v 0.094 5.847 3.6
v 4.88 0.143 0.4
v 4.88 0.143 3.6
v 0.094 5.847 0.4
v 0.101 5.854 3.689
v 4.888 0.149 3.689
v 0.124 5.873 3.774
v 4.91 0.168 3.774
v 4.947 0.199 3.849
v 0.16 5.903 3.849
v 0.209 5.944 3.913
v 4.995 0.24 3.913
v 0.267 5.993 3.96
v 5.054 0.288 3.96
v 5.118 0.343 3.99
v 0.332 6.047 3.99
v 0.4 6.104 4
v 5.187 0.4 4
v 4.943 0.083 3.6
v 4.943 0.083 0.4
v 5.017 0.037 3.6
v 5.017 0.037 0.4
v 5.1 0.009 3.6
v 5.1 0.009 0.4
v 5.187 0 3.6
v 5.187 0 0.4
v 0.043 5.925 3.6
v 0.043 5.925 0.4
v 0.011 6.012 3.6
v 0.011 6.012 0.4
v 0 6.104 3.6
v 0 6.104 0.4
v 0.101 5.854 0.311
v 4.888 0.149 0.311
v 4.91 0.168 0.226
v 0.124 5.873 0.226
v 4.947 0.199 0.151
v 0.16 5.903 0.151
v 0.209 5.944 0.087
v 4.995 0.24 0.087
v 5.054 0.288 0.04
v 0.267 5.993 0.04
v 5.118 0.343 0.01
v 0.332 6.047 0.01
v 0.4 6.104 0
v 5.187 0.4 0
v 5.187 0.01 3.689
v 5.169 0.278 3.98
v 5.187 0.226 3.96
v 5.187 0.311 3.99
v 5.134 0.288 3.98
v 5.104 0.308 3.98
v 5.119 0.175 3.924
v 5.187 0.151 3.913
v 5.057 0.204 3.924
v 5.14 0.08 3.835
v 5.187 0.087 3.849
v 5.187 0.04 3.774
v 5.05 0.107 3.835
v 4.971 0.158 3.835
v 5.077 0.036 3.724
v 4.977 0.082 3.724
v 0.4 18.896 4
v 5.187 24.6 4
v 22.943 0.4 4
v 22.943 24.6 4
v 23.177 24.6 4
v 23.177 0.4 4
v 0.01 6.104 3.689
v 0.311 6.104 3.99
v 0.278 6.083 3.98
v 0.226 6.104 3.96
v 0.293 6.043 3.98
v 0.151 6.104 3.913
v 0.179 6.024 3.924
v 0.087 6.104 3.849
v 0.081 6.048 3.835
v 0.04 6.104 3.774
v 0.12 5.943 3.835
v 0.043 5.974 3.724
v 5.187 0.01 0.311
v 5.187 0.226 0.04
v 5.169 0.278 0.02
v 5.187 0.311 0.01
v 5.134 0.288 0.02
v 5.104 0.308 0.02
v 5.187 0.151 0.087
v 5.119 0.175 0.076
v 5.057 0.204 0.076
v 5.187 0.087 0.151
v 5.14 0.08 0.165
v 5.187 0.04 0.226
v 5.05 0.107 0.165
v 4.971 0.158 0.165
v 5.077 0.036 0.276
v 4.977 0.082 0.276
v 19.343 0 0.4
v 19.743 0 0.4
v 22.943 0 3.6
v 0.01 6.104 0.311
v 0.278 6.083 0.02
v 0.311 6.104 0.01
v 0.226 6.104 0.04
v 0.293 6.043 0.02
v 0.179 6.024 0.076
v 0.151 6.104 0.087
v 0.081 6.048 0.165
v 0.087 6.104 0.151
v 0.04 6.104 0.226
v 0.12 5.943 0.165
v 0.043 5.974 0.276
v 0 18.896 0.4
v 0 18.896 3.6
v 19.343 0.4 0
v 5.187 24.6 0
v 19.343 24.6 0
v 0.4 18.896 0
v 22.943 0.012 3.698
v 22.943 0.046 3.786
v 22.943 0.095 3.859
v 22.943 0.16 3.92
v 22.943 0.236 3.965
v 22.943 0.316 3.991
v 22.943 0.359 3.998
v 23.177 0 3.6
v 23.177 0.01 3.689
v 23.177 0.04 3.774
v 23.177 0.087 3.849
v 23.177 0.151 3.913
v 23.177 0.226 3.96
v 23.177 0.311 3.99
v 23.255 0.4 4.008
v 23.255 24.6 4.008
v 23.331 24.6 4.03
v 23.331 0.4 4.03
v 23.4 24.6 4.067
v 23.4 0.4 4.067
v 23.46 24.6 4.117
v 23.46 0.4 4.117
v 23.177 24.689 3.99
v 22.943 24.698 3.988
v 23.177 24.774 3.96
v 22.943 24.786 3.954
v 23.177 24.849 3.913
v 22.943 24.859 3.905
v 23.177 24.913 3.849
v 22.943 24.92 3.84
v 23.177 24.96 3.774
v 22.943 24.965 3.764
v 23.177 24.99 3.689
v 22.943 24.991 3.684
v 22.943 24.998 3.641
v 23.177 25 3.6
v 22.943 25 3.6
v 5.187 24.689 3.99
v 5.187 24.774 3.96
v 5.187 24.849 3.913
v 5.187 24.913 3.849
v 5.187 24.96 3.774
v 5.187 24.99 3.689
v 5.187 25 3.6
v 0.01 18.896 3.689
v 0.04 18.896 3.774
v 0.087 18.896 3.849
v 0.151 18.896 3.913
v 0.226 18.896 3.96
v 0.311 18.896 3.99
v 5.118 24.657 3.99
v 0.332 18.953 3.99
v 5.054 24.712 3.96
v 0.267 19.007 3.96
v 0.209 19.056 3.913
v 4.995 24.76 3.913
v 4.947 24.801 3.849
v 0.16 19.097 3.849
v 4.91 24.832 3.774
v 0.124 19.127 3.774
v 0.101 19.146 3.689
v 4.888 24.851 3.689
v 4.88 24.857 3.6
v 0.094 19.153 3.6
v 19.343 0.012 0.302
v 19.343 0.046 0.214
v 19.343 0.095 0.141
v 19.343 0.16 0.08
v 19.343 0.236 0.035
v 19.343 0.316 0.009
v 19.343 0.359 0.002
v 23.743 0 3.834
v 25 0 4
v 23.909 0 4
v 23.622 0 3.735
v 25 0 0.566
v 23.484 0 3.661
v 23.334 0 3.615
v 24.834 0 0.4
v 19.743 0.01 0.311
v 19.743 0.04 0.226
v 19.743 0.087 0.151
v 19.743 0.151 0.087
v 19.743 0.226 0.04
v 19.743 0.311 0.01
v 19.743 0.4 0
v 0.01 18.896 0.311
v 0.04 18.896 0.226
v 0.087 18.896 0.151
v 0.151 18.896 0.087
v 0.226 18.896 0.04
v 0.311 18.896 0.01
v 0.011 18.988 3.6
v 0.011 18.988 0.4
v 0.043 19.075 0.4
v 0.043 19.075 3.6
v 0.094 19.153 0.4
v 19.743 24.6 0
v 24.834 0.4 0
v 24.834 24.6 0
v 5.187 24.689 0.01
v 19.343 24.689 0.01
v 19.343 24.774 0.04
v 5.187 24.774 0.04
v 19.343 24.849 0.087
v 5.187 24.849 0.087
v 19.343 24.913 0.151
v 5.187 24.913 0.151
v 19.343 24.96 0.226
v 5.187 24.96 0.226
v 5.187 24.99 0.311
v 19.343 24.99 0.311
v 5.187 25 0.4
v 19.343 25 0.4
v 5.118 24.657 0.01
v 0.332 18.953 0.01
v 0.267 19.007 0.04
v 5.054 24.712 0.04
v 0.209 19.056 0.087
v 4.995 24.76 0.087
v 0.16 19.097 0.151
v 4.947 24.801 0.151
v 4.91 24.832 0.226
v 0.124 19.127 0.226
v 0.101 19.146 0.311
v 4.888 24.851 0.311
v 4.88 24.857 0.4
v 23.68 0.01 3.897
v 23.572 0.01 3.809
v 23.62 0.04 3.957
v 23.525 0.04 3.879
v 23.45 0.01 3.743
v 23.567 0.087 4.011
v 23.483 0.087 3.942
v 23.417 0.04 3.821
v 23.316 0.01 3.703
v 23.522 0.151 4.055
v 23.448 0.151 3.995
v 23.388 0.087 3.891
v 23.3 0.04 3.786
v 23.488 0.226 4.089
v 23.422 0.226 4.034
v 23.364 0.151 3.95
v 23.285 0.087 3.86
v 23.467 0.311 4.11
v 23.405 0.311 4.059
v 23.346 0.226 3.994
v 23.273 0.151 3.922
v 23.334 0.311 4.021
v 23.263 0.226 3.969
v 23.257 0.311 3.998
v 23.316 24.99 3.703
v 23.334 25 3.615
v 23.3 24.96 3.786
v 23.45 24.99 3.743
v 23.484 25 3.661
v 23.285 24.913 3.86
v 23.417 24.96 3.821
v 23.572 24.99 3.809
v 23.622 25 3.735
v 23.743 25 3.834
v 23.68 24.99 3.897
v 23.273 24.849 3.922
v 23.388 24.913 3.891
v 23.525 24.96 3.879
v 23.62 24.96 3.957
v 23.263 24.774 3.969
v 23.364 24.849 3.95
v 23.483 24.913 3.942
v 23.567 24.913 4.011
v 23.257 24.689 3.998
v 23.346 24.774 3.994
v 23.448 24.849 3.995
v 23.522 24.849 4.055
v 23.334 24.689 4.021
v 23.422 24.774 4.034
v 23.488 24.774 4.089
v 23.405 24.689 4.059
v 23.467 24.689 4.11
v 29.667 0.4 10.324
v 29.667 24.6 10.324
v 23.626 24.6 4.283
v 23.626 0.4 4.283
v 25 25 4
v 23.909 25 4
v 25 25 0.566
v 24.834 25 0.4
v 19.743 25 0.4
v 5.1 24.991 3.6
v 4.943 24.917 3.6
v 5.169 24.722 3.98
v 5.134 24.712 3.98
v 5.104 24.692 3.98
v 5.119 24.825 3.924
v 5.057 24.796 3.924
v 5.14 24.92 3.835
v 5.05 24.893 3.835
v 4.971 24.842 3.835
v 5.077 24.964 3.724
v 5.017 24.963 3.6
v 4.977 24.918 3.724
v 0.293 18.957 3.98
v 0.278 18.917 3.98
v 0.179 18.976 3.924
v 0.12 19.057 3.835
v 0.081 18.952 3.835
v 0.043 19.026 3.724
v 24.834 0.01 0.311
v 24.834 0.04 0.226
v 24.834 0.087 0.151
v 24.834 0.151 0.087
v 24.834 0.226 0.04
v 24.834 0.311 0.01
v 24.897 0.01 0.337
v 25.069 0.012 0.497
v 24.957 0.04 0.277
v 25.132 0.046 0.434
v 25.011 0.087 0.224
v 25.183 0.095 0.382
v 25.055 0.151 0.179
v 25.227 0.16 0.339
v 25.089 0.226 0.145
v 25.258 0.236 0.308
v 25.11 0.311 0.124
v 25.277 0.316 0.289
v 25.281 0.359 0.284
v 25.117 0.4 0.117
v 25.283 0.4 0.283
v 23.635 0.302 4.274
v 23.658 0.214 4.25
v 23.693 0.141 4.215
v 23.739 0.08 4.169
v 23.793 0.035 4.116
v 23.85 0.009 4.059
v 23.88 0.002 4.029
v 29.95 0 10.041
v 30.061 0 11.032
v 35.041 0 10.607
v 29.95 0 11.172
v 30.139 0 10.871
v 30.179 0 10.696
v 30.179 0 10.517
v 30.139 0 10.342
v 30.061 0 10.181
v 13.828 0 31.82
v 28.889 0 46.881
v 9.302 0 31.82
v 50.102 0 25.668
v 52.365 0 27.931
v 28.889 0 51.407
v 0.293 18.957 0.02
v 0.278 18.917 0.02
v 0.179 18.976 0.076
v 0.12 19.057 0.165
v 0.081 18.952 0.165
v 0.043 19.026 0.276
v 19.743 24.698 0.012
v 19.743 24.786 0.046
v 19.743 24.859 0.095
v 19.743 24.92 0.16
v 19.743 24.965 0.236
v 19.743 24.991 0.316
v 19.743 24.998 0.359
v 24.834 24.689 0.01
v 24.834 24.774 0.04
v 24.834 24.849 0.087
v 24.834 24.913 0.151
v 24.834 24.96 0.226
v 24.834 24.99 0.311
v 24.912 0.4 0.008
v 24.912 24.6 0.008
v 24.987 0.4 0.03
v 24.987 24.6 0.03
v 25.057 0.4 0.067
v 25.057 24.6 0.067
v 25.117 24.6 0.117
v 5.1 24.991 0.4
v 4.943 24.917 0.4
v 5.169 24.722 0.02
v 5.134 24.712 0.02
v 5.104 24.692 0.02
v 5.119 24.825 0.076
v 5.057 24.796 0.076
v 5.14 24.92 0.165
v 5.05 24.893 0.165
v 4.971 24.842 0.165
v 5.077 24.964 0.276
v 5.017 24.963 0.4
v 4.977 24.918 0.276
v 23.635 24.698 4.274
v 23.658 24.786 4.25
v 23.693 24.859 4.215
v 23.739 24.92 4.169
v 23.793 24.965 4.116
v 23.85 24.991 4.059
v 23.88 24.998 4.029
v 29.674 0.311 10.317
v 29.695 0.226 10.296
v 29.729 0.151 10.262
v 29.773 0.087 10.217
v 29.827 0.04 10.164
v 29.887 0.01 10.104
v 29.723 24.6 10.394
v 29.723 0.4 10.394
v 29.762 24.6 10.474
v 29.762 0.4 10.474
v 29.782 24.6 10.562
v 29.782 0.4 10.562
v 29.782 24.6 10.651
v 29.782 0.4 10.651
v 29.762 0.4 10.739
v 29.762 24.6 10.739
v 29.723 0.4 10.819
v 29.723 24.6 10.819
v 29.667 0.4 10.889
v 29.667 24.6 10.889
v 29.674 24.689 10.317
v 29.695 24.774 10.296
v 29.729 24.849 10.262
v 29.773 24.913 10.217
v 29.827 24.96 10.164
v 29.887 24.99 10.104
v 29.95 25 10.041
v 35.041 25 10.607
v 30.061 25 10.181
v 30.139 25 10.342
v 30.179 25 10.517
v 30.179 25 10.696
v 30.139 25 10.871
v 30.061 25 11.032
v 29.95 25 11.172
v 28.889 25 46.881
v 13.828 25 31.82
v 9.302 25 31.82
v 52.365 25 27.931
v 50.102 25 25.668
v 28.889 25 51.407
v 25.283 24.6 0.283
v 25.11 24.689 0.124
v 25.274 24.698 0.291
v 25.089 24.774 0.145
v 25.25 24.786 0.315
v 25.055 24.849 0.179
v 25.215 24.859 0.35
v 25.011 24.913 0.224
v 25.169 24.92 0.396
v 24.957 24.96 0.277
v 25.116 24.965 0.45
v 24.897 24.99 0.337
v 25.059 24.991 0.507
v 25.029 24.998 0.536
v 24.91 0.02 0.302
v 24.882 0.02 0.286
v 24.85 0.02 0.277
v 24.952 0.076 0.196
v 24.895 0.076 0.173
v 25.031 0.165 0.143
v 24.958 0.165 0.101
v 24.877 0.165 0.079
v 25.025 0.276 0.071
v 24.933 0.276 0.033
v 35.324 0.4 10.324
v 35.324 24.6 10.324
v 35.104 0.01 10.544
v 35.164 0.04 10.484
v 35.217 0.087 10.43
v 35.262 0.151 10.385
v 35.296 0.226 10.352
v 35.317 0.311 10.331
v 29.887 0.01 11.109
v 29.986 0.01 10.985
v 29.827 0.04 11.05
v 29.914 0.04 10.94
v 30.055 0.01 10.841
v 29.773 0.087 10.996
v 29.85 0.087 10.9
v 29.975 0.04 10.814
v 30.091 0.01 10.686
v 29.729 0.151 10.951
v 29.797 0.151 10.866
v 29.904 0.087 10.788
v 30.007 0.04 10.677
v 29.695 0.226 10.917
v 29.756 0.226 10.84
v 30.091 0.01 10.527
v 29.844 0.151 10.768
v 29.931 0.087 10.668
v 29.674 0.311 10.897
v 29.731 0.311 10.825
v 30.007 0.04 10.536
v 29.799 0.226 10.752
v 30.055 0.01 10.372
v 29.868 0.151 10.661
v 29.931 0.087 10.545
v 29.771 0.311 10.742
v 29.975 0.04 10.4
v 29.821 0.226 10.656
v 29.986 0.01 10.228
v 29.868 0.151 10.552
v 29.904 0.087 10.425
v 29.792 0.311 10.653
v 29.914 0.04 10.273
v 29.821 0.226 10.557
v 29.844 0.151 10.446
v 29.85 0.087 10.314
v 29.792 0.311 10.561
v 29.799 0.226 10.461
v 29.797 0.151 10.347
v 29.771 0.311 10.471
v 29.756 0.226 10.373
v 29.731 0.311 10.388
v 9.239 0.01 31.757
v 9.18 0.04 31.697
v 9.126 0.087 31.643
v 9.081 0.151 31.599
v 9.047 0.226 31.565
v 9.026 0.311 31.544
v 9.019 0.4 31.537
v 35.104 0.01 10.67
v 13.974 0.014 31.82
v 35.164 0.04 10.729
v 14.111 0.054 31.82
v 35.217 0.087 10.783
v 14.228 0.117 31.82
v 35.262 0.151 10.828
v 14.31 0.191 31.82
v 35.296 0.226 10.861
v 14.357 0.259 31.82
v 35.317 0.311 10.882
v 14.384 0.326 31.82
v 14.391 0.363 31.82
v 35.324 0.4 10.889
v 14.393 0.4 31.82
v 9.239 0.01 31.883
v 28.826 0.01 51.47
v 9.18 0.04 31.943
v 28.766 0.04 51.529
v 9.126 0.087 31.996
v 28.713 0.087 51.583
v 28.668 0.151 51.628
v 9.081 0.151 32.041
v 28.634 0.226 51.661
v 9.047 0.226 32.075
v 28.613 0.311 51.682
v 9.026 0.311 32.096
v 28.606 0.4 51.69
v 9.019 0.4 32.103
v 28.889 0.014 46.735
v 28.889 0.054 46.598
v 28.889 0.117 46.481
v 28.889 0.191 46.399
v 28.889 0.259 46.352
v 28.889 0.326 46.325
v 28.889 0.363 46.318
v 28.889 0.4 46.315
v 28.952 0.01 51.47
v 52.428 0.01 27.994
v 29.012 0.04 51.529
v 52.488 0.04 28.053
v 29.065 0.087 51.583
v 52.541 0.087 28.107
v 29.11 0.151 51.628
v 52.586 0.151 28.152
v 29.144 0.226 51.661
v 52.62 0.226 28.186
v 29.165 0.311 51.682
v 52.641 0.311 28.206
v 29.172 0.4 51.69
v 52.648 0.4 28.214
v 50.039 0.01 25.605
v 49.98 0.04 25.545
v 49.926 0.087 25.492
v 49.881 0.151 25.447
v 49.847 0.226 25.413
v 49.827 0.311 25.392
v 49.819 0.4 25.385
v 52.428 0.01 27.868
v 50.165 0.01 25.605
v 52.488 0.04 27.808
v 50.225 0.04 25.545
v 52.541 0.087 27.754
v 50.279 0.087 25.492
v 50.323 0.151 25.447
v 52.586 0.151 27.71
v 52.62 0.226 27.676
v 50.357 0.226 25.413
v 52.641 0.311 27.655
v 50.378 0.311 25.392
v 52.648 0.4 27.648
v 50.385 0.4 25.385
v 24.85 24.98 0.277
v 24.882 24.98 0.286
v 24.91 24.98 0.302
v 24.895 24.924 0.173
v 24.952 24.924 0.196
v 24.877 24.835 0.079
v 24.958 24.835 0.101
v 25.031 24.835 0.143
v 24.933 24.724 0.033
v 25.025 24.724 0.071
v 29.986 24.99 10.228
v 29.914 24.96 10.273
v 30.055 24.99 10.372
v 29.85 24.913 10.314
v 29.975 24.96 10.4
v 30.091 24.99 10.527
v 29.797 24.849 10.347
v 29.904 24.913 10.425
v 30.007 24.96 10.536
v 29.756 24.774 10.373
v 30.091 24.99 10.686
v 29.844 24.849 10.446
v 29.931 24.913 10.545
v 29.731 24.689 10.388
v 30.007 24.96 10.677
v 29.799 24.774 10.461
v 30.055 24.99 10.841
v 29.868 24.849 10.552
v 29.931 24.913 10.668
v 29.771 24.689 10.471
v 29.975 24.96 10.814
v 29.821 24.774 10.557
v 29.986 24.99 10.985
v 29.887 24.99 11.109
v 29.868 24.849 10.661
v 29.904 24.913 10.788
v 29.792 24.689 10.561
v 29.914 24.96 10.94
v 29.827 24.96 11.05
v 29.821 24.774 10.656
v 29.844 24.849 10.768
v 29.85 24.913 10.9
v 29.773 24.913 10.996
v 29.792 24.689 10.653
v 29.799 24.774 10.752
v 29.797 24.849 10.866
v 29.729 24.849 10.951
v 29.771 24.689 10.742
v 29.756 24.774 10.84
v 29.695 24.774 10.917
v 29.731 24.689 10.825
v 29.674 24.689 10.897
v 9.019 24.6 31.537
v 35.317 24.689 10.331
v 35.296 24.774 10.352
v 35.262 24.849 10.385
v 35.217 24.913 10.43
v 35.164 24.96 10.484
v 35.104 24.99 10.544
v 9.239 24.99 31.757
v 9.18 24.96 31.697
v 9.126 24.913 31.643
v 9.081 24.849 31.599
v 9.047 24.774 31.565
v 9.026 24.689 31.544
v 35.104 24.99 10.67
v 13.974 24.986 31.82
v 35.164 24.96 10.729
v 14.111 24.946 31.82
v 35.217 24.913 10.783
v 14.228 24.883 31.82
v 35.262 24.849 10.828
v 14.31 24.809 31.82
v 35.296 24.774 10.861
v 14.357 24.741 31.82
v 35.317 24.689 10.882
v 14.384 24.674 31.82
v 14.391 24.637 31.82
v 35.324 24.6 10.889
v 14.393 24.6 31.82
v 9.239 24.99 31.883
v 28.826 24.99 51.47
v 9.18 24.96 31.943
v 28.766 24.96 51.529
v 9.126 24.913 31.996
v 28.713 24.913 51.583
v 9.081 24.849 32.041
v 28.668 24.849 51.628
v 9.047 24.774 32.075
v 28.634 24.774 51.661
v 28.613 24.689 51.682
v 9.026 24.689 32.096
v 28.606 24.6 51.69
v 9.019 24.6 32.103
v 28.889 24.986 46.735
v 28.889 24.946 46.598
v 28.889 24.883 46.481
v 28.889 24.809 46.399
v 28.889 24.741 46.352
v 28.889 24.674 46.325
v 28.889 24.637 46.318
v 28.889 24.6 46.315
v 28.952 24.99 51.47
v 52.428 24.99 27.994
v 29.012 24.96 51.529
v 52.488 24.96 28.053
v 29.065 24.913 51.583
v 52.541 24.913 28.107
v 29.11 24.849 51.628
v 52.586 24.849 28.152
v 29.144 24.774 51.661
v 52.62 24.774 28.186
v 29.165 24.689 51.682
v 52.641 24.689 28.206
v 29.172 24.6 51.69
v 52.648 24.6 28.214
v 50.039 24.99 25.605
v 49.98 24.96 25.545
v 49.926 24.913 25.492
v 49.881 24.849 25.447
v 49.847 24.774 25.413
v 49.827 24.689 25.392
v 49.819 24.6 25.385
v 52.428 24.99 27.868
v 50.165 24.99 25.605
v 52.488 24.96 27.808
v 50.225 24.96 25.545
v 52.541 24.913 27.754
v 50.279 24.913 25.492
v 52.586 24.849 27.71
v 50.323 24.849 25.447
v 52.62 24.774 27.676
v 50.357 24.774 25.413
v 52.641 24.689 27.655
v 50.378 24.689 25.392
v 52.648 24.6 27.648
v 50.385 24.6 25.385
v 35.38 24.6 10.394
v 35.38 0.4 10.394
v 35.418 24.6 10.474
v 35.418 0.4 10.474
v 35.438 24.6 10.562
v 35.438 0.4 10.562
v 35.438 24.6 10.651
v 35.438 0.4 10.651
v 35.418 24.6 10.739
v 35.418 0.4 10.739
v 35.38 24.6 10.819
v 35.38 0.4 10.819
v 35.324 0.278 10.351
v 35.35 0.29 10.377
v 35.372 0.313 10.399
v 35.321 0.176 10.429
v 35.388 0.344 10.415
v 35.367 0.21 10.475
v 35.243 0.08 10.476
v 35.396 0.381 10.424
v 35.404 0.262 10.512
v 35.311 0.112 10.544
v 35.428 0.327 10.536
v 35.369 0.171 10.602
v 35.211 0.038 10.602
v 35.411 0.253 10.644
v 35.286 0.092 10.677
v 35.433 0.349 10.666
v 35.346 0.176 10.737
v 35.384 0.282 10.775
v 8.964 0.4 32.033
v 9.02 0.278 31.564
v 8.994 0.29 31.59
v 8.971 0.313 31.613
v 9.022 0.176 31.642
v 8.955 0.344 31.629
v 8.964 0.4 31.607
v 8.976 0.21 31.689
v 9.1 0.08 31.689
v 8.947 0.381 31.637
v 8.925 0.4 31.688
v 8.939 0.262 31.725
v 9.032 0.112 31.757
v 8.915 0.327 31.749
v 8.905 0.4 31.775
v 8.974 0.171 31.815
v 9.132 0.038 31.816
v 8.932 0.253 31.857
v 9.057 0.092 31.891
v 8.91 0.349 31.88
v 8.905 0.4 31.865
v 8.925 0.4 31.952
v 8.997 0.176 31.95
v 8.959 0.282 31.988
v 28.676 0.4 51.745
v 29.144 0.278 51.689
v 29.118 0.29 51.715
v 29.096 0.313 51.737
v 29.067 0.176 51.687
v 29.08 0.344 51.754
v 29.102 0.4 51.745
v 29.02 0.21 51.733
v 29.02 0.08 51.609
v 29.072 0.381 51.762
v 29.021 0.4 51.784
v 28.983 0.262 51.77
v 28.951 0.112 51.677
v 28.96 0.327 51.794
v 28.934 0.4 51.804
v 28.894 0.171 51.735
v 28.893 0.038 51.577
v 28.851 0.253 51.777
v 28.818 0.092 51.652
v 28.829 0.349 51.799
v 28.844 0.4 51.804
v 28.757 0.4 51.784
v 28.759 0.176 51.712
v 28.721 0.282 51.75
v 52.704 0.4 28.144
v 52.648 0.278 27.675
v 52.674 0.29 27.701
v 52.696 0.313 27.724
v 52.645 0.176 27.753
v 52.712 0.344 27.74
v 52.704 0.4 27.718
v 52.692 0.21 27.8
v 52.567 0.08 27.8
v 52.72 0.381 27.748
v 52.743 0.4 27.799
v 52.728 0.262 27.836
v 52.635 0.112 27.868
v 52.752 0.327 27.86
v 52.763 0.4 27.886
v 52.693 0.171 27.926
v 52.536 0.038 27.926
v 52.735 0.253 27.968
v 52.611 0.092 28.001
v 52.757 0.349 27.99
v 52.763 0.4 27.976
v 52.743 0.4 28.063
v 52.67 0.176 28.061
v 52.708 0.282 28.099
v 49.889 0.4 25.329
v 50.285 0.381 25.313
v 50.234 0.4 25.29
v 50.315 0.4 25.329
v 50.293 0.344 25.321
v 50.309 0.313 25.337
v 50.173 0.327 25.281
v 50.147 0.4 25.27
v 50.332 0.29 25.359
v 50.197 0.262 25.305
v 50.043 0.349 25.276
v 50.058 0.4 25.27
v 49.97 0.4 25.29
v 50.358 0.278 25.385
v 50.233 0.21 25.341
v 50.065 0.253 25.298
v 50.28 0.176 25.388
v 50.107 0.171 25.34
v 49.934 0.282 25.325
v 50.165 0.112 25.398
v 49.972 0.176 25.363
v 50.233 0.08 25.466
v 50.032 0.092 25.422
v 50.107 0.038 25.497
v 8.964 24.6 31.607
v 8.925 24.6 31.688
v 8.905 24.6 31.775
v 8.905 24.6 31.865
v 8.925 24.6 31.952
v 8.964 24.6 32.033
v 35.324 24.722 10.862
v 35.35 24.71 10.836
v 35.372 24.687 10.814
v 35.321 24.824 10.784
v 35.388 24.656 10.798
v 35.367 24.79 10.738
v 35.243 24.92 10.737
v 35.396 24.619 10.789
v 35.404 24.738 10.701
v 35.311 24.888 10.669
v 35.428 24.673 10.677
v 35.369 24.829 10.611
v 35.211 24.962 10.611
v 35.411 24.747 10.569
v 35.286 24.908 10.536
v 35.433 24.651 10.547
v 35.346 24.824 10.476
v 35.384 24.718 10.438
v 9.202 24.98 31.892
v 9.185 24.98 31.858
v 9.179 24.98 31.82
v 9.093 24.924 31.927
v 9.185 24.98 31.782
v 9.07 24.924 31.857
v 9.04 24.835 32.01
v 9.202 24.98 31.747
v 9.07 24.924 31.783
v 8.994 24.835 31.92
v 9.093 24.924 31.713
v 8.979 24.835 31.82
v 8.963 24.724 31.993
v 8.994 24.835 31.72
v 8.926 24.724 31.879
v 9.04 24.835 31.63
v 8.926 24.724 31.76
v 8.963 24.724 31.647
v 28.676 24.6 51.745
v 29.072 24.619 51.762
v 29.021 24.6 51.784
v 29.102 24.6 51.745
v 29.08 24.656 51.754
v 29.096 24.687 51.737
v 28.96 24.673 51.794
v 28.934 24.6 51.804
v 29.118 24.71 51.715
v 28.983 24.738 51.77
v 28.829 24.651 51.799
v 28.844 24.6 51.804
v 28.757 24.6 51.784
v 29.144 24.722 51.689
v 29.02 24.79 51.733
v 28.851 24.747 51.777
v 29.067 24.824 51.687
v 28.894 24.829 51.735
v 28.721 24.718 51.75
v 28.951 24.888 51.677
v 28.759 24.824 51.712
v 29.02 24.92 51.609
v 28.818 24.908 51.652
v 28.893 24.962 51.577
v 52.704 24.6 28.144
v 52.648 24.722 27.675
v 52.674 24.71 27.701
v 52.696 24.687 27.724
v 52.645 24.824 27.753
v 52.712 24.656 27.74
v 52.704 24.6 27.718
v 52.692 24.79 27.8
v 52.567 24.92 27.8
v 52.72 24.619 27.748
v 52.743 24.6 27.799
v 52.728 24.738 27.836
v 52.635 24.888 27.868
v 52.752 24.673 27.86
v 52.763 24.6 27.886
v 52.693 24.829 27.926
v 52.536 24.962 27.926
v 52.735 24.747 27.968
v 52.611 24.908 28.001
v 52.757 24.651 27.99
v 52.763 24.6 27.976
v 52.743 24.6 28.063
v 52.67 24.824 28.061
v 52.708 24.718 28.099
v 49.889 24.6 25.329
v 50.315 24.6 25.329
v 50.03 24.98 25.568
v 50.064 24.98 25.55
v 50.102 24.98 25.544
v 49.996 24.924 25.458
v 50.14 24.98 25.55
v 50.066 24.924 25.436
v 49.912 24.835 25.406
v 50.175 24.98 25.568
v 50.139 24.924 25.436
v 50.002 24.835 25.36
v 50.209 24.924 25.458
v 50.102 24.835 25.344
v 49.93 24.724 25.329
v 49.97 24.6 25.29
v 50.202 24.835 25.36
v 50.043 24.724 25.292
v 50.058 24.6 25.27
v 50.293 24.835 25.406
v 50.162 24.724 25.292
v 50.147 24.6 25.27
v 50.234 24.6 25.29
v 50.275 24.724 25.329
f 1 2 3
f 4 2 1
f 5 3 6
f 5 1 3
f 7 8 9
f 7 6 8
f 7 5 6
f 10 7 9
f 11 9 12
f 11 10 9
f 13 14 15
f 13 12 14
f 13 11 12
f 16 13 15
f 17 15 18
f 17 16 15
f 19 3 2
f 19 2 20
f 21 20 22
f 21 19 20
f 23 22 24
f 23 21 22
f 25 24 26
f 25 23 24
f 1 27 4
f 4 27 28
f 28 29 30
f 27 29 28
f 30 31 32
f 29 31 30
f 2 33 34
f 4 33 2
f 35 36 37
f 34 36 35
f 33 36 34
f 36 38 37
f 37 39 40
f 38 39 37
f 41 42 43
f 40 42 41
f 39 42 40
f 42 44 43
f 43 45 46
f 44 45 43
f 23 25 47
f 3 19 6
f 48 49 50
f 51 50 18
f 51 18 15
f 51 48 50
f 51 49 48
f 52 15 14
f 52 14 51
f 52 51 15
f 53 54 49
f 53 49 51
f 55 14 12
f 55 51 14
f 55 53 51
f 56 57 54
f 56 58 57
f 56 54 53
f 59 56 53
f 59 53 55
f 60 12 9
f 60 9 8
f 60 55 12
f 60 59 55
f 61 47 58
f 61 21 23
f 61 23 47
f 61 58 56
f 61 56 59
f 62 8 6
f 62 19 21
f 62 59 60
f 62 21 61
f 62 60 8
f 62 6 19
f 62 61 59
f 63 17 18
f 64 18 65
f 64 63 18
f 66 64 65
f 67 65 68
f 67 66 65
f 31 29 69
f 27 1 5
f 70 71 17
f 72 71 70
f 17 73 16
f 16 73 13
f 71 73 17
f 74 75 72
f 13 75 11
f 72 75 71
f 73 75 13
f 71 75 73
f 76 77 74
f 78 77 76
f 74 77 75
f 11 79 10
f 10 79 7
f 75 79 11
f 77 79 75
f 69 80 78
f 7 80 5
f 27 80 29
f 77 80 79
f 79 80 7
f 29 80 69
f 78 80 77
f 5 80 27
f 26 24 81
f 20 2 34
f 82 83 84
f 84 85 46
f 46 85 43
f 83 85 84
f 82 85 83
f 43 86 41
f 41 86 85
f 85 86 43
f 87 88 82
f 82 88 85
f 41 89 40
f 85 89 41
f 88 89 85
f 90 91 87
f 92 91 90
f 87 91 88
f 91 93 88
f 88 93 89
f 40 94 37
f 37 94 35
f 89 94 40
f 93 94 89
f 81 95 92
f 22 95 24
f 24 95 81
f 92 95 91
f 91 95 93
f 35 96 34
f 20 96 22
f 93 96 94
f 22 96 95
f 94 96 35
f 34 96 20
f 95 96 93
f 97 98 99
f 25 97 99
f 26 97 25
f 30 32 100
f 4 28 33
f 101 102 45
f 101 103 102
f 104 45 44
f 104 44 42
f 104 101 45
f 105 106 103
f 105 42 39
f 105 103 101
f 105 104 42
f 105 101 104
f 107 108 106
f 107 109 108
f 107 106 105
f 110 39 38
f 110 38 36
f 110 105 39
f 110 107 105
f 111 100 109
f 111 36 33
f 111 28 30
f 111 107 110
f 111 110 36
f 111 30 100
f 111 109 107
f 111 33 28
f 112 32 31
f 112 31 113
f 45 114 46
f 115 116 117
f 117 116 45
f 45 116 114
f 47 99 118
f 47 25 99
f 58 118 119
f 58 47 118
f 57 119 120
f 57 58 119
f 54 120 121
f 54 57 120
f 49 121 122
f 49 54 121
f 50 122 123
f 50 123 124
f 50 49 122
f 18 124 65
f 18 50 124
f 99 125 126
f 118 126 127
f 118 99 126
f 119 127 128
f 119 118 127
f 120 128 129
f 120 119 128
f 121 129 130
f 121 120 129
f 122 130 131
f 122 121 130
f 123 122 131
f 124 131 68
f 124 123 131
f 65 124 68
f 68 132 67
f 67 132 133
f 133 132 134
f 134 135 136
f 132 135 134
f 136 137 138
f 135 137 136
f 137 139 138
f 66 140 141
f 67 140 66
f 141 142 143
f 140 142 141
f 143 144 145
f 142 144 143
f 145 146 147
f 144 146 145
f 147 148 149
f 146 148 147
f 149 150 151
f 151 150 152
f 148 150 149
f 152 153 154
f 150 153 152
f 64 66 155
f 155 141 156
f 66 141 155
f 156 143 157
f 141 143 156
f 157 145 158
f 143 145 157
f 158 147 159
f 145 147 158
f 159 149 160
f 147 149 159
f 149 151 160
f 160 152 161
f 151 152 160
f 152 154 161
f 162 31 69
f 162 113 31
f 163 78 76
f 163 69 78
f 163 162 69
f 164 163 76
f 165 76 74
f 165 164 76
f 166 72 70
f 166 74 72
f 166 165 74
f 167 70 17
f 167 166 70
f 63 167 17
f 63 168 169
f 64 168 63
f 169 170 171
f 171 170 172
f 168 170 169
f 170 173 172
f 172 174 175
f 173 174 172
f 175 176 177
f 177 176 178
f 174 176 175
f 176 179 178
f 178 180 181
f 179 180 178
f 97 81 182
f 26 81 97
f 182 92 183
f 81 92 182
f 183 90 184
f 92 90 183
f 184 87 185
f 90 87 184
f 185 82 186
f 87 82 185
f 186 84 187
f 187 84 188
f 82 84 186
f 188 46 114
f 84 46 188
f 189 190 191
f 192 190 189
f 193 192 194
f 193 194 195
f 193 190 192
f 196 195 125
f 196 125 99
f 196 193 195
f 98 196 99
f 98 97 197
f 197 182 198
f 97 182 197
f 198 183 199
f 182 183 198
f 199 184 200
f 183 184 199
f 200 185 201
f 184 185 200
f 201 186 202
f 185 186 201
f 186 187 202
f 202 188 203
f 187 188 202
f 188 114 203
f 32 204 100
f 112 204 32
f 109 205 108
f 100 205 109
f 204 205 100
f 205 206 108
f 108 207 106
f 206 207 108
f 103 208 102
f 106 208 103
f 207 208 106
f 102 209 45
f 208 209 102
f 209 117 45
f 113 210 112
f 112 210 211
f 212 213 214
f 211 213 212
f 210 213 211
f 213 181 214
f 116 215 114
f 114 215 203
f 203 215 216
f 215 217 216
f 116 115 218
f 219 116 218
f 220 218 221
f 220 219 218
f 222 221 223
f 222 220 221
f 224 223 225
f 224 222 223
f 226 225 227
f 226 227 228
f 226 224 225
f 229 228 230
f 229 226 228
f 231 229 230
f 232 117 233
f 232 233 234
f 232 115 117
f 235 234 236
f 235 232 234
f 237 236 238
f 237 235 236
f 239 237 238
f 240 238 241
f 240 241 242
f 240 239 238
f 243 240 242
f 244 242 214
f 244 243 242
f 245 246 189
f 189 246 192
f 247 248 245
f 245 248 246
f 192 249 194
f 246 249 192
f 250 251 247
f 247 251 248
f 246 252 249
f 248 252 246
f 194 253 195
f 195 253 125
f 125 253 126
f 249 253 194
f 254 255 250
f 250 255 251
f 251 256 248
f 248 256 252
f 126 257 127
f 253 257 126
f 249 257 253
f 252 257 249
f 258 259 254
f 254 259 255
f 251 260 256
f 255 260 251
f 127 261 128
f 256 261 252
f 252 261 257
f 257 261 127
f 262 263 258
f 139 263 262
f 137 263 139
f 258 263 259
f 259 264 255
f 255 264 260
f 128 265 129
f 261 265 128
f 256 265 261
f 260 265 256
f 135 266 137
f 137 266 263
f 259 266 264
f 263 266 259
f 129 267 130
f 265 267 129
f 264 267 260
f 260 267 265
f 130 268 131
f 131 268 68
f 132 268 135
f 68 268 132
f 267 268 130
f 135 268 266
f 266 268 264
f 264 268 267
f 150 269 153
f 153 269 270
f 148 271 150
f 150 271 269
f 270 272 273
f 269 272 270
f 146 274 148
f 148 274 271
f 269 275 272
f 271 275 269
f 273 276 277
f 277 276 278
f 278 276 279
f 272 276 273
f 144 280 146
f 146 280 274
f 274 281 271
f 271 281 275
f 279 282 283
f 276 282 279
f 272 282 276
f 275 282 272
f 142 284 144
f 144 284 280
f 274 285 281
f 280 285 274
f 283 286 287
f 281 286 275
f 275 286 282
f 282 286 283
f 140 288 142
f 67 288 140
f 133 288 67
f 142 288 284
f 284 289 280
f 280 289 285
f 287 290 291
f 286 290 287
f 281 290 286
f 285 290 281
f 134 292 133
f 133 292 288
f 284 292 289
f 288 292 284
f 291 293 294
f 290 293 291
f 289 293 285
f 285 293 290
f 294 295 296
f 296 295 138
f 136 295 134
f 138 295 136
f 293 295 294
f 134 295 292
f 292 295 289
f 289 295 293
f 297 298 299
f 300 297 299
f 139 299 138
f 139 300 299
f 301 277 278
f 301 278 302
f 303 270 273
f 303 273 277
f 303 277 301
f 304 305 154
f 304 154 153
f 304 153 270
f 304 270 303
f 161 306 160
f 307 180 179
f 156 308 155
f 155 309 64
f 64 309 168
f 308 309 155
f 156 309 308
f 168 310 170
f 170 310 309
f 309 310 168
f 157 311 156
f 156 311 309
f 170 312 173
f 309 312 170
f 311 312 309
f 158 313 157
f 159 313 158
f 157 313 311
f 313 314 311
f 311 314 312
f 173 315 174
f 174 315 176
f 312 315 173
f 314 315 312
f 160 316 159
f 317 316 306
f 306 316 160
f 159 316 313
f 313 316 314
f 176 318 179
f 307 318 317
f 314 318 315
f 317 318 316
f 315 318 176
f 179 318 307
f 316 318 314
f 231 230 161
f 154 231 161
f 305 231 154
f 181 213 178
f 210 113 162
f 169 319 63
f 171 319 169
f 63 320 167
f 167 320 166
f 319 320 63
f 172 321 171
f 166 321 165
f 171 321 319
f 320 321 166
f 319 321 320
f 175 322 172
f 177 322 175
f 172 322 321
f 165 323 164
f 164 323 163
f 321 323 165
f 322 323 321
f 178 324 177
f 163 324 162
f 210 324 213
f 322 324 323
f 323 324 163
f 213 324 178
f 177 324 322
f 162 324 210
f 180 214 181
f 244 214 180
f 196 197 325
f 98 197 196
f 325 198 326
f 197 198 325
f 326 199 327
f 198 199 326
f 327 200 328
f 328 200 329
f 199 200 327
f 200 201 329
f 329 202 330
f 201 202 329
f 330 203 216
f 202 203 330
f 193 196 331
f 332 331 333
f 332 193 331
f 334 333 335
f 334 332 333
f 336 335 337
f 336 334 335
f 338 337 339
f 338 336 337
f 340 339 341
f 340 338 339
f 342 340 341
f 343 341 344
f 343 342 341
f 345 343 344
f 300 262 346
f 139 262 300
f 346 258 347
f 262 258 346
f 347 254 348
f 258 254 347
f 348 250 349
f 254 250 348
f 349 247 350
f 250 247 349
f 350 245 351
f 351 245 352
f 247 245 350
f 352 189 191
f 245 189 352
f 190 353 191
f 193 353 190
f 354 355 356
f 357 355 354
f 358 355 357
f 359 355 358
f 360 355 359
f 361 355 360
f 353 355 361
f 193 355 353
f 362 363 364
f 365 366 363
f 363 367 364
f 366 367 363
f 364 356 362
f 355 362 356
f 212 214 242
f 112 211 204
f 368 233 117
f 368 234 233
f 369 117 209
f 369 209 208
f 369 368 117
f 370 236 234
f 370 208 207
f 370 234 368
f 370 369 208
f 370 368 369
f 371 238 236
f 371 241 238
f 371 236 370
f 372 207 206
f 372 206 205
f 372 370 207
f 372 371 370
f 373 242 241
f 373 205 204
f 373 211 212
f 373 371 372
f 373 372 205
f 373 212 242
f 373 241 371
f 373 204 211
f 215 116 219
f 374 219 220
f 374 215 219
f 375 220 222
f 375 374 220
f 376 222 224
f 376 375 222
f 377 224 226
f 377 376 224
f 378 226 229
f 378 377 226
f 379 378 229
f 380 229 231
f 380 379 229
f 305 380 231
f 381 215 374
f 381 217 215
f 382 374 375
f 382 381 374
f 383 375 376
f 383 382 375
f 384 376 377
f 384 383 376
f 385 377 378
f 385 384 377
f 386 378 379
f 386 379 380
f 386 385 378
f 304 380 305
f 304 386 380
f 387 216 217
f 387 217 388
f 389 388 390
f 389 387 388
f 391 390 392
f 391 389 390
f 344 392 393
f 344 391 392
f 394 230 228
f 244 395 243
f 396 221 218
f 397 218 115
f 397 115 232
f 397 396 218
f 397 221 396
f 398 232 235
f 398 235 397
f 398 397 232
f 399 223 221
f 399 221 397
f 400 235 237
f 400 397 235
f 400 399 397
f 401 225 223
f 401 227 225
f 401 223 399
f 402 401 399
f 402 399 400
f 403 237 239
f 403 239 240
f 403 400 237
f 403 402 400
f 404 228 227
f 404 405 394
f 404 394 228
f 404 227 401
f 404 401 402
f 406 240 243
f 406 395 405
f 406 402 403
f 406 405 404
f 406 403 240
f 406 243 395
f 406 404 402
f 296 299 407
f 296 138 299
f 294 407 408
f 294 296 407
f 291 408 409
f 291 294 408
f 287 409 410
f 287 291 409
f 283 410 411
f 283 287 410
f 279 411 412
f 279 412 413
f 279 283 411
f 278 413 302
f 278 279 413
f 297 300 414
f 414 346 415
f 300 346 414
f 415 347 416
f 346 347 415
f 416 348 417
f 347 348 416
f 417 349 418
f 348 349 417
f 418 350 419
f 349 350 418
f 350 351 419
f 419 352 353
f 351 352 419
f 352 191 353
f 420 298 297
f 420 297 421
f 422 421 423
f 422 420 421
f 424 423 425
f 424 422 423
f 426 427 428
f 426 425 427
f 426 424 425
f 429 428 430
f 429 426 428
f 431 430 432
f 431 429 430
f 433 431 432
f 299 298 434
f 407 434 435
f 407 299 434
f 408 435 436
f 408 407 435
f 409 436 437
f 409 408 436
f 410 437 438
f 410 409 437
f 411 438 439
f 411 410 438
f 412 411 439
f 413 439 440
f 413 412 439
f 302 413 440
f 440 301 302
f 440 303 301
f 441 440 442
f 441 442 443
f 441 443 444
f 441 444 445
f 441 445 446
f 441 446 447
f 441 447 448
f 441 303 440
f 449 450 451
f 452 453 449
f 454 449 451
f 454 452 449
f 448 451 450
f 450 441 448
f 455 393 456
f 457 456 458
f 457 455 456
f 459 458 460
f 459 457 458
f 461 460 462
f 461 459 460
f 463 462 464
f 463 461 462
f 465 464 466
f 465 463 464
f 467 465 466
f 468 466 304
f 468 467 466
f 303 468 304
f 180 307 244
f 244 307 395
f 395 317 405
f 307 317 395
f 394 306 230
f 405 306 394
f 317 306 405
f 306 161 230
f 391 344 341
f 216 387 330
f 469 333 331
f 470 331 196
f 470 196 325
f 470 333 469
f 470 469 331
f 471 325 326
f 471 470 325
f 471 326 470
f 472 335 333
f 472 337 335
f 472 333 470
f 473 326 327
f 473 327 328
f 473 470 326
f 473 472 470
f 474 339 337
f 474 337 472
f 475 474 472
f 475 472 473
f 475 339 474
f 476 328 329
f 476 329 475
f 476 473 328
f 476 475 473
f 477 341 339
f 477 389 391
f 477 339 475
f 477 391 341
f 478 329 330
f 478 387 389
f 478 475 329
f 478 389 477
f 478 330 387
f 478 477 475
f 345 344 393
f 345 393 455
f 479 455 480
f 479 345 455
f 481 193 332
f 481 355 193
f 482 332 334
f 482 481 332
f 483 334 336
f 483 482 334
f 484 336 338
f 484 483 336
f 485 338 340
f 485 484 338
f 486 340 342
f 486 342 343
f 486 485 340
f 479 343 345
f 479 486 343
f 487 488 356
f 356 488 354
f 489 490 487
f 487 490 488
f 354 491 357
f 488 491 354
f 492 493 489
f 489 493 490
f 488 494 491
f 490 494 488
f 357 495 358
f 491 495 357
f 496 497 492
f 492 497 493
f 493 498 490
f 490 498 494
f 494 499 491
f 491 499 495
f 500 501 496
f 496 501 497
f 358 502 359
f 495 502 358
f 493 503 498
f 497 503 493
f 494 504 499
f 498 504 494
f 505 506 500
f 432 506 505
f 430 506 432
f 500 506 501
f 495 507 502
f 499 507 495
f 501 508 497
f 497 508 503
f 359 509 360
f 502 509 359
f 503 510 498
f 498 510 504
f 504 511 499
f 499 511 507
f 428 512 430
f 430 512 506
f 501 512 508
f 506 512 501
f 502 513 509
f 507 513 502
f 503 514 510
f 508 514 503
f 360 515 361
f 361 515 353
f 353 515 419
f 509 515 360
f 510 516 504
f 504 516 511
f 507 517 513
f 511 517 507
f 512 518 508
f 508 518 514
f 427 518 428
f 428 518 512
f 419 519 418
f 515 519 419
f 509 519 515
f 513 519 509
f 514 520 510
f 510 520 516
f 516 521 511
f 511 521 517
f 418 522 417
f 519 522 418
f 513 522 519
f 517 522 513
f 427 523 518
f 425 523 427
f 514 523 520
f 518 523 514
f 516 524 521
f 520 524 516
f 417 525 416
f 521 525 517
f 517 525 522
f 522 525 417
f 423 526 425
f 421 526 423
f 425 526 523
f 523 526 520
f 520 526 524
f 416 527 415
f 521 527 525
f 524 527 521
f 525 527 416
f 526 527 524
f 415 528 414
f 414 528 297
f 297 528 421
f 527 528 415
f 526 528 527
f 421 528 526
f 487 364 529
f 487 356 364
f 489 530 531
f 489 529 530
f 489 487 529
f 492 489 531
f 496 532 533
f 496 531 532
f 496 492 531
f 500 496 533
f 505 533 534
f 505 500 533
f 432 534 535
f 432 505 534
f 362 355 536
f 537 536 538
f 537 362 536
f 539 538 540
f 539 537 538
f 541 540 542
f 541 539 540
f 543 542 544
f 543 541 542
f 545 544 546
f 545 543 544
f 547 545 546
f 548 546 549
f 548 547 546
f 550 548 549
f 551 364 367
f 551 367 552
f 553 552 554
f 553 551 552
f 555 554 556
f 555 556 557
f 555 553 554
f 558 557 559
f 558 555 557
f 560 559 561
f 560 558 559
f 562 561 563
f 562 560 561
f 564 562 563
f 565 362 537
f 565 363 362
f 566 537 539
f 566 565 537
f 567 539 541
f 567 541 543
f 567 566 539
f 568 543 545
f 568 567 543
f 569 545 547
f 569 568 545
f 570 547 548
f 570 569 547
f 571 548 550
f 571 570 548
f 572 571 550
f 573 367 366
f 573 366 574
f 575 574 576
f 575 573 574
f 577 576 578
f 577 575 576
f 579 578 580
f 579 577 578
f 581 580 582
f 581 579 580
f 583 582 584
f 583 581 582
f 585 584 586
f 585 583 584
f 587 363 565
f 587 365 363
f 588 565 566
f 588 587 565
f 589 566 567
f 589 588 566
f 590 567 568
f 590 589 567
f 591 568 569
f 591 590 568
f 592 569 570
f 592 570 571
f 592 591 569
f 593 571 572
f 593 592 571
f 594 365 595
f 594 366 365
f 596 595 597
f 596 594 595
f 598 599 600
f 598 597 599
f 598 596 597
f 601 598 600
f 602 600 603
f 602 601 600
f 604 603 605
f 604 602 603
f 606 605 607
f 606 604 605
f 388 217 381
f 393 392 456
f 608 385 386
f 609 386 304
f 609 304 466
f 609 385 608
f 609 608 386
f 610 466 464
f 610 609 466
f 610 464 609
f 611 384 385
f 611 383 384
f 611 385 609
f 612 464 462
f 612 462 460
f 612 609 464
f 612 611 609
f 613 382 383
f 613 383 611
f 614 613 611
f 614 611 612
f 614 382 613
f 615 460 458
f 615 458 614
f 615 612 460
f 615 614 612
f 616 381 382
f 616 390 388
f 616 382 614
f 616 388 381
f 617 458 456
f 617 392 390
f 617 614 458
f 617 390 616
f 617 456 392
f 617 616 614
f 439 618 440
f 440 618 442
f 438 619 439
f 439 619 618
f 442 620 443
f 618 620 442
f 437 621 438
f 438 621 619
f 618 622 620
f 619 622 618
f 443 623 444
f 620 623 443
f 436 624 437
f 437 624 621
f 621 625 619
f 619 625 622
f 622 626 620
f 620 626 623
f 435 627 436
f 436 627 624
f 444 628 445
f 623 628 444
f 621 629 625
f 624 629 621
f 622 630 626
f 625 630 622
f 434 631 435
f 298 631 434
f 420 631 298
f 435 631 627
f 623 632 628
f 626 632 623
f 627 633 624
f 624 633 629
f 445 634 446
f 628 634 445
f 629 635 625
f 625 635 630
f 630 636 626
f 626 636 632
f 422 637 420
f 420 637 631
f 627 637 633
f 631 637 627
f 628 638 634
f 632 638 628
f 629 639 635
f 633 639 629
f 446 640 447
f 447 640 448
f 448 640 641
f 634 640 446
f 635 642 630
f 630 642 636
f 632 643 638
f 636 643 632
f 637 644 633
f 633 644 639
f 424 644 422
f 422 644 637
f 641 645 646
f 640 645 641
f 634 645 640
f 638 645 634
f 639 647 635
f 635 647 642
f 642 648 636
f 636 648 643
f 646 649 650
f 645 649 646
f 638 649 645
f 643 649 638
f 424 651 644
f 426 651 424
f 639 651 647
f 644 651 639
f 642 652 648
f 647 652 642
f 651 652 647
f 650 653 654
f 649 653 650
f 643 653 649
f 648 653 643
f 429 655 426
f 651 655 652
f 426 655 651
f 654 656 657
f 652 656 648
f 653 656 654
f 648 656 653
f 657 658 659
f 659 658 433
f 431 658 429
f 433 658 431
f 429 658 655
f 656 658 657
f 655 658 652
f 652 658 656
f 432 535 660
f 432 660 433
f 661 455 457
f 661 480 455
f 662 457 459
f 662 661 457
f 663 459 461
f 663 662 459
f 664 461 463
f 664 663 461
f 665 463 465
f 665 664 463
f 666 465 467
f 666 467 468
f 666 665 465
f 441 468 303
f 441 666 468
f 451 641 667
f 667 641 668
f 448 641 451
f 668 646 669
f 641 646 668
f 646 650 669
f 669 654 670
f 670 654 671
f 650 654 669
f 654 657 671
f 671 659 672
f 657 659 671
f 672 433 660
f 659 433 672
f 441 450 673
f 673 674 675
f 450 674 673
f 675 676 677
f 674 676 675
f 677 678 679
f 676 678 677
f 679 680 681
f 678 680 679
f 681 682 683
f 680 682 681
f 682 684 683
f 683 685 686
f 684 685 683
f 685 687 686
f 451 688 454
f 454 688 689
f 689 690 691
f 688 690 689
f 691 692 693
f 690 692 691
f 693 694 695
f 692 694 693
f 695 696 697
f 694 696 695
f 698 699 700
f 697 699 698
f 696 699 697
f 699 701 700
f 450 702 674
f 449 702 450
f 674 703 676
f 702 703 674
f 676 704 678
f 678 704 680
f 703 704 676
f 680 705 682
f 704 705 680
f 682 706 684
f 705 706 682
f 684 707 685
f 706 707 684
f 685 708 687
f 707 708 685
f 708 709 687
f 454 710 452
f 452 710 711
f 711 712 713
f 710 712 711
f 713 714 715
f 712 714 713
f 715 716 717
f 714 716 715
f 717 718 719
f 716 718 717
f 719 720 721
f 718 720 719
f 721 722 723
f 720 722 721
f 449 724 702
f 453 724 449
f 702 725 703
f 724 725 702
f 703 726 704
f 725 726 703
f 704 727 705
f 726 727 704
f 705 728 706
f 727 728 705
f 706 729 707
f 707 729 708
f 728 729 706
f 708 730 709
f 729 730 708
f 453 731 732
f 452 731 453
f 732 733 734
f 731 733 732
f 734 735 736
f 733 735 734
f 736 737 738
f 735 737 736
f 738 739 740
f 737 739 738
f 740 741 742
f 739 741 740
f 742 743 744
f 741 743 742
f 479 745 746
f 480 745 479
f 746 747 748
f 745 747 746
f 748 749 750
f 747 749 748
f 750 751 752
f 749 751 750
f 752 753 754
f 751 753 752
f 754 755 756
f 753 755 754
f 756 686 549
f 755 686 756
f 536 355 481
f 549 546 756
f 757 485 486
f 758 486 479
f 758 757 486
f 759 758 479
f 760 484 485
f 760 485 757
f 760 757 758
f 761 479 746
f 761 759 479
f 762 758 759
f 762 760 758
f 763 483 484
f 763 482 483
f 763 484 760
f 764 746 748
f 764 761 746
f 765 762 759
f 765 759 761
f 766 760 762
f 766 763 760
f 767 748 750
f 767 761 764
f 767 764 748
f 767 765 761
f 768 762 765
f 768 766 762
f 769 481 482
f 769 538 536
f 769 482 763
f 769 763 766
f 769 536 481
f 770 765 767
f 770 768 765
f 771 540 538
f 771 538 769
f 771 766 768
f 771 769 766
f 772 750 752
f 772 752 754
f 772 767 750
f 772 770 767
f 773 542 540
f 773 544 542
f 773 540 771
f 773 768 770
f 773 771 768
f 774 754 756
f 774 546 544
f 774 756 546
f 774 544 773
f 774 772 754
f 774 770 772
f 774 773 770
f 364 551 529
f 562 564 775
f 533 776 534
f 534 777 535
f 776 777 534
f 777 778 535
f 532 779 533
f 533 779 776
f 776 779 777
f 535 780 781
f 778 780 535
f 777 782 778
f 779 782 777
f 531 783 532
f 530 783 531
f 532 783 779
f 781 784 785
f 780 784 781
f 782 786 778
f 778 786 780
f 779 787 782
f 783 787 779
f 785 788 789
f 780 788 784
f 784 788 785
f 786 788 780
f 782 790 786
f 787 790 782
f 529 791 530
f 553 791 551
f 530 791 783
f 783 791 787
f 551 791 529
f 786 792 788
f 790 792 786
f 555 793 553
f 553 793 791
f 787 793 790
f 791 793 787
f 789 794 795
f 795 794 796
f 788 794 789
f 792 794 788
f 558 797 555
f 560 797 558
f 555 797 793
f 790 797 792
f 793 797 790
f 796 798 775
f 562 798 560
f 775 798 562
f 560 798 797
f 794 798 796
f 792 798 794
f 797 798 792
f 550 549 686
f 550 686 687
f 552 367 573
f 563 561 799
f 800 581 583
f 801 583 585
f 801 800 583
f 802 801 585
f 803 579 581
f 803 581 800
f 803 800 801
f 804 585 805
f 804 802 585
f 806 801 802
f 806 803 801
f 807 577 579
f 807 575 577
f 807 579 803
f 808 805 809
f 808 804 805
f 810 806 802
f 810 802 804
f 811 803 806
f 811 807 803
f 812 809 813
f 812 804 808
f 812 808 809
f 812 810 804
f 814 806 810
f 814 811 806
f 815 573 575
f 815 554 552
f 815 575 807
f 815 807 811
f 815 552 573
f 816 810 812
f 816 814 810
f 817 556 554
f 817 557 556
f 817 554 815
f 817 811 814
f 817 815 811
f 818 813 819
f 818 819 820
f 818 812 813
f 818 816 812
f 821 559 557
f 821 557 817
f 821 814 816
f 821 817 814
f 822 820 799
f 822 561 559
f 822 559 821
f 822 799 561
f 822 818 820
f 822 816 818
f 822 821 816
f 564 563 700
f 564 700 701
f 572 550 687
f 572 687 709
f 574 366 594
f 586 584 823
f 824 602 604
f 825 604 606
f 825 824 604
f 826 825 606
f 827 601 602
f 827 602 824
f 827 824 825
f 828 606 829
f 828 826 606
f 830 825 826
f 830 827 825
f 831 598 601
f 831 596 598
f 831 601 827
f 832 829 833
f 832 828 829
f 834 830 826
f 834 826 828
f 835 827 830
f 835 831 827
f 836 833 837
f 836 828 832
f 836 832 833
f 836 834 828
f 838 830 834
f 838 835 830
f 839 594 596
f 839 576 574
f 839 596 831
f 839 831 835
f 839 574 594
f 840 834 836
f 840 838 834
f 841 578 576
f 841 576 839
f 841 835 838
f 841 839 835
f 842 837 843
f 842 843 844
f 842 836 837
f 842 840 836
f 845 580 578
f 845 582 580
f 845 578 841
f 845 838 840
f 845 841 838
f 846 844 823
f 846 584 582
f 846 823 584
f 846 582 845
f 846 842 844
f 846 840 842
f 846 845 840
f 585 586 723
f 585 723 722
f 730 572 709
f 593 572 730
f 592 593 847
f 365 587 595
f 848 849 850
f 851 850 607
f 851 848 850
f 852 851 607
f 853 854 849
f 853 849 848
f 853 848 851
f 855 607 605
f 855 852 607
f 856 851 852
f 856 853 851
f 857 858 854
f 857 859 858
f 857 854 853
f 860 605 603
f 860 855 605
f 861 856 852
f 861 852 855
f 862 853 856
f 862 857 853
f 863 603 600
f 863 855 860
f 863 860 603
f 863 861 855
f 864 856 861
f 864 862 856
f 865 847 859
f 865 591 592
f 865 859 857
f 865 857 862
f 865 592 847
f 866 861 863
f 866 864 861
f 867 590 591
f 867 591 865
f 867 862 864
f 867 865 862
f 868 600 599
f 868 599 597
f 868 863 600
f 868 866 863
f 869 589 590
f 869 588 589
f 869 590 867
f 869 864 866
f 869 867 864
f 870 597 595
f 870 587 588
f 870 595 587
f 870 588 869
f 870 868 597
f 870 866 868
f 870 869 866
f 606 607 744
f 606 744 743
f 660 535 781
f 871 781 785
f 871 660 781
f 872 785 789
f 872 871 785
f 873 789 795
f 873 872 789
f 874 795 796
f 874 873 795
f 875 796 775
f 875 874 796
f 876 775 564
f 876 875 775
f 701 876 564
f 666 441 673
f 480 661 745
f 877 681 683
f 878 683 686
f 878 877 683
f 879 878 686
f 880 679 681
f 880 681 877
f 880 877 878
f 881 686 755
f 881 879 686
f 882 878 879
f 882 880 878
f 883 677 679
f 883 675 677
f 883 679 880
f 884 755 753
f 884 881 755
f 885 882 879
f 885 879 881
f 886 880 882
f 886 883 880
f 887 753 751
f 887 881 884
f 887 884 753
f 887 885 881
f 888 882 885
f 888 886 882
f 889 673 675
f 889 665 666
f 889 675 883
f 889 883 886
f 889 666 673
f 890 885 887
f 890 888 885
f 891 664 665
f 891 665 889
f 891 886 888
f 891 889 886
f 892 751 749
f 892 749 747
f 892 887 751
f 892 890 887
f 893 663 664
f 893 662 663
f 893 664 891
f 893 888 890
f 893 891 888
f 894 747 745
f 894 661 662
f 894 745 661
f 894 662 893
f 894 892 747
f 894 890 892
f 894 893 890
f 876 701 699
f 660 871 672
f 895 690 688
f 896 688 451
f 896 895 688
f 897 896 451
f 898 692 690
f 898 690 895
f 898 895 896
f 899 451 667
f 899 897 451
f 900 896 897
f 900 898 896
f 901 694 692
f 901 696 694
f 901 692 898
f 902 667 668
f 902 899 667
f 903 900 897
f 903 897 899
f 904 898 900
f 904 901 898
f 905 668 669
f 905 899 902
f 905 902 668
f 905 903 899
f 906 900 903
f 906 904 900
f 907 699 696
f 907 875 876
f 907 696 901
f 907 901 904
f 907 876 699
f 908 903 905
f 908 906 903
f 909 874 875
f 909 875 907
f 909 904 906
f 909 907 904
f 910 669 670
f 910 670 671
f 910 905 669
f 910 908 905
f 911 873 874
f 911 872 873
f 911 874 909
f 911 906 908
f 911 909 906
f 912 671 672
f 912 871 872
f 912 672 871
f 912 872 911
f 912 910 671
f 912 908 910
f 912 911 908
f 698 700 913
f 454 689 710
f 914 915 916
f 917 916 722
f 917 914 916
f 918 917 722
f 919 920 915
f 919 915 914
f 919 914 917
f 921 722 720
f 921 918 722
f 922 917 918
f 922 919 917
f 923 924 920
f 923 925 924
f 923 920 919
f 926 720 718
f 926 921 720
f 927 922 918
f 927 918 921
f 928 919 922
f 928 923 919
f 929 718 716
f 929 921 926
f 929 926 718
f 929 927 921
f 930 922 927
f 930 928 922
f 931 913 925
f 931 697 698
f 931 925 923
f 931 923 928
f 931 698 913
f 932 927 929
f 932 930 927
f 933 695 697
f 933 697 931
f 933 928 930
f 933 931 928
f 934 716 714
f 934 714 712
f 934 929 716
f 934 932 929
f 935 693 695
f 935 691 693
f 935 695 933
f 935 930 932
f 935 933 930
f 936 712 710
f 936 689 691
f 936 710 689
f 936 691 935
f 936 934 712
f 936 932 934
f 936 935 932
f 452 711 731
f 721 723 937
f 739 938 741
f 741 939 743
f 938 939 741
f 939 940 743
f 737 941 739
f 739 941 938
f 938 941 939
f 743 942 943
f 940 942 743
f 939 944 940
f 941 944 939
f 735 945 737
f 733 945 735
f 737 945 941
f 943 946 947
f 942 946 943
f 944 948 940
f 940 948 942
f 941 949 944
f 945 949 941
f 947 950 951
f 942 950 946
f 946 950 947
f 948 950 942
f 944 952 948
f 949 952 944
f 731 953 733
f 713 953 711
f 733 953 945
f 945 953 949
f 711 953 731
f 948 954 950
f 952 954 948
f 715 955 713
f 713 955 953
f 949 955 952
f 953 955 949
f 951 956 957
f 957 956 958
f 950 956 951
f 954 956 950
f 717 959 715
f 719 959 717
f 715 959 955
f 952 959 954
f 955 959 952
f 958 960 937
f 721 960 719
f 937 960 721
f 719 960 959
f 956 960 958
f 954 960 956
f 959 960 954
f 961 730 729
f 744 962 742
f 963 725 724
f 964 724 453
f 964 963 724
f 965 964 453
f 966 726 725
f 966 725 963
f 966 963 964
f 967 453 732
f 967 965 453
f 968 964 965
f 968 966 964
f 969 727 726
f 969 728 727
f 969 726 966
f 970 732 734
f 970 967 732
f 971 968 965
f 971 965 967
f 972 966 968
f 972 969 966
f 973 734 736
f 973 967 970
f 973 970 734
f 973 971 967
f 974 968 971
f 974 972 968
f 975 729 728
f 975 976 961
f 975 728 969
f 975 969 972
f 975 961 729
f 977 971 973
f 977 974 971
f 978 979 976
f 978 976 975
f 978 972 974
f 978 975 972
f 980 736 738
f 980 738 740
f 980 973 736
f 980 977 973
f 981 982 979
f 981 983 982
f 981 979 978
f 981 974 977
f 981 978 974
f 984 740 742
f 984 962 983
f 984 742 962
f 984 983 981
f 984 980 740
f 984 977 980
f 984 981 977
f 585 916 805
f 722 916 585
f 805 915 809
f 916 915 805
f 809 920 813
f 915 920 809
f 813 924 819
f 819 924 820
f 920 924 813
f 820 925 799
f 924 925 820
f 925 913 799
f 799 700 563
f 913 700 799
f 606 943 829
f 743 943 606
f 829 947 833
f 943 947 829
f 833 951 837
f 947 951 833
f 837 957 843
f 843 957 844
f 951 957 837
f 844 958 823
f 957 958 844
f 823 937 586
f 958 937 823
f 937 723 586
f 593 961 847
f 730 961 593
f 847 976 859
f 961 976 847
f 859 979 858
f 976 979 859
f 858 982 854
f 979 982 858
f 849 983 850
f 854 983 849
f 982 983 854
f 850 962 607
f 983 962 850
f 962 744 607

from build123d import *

# Parameters (mm, degrees)
PAD_DEPTH    = 4
PAD001_DEPTH = 25
FILLET_R     = 0.4


with BuildPart() as part:
    # Sketch → Pad (new body)
    with BuildSketch(Plane.XY):
        Polygon((5, 0), (0, 5.958768), (0, 19.041232), (5, 25), (25, 25), (25, 0), align=None)
    extrude(amount=PAD_DEPTH)

    # Sketch001 → Pad001 (join)
    with BuildSketch(Plane.XZ):
        Polygon((29.949747, 10.606602), (19.343146, 0), (25, 0), (35.606602, 10.606602), (14.393398, 31.819805), (28.889087, 46.315494), (50.102291, 25.102291), (52.930718, 27.930718), (28.889087, 51.972348), (8.736544, 31.819805), align=None)
    extrude(amount=-PAD001_DEPTH)

    # Fillet
    fillet_edges = [part.edges().sort_by_distance(p)[0] for p in [
        (25, 0, 21.213203),
        (21.641243, 0, 39.06765),
        (18.812816, 0, 41.896077),
        (19.343146, 0, 21.213203),
        (26.646447, 0, 7.303301),
        (30.303301, 0, 5.303301),
        (12.171573, 0, 0),
        (22.171573, 0, 0),
        (14.171573, 0, 4),
        (2.5, 2.979384, 4),
        (2.5, 2.979384, 0),
        (5, 0, 2),
        (0, 5.958768, 2),
        (39.495689, 0, 35.708892),
        (40.909903, 0, 39.951533),
        (50.102291, 12.5, 25.102291),
        (51.516504, 0, 26.516504),
        (8.736544, 12.5, 31.819805),
        (0, 12.5, 4),
        (0, 12.5, 0),
        (0, 19.041232, 2),
        (2.5, 22.020616, 4),
        (2.5, 22.020616, 0),
        (5, 25, 2),
        (18.812816, 25, 41.896077),
        (28.889087, 12.5, 51.972348),
        (19.343146, 25, 21.213203),
        (29.949747, 12.5, 10.606602),
        (23.343146, 12.5, 4),
        (14.171573, 25, 4),
        (12.171573, 25, 0),
        (22.171573, 25, 0),
        (30.303301, 25, 5.303301),
        (25, 25, 21.213203),
        (21.641243, 25, 39.06765),
        (39.495689, 25, 35.708892),
        (40.909903, 25, 39.951533),
        (51.516504, 25, 26.516504),
        (52.930718, 12.5, 27.930718),
        (35.606602, 12.5, 10.606602),
        (26.646447, 25, 7.303301),
        (25, 12.5, 0),
    ]]
    fillet(fillet_edges, radius=FILLET_R)


solid = part.part
